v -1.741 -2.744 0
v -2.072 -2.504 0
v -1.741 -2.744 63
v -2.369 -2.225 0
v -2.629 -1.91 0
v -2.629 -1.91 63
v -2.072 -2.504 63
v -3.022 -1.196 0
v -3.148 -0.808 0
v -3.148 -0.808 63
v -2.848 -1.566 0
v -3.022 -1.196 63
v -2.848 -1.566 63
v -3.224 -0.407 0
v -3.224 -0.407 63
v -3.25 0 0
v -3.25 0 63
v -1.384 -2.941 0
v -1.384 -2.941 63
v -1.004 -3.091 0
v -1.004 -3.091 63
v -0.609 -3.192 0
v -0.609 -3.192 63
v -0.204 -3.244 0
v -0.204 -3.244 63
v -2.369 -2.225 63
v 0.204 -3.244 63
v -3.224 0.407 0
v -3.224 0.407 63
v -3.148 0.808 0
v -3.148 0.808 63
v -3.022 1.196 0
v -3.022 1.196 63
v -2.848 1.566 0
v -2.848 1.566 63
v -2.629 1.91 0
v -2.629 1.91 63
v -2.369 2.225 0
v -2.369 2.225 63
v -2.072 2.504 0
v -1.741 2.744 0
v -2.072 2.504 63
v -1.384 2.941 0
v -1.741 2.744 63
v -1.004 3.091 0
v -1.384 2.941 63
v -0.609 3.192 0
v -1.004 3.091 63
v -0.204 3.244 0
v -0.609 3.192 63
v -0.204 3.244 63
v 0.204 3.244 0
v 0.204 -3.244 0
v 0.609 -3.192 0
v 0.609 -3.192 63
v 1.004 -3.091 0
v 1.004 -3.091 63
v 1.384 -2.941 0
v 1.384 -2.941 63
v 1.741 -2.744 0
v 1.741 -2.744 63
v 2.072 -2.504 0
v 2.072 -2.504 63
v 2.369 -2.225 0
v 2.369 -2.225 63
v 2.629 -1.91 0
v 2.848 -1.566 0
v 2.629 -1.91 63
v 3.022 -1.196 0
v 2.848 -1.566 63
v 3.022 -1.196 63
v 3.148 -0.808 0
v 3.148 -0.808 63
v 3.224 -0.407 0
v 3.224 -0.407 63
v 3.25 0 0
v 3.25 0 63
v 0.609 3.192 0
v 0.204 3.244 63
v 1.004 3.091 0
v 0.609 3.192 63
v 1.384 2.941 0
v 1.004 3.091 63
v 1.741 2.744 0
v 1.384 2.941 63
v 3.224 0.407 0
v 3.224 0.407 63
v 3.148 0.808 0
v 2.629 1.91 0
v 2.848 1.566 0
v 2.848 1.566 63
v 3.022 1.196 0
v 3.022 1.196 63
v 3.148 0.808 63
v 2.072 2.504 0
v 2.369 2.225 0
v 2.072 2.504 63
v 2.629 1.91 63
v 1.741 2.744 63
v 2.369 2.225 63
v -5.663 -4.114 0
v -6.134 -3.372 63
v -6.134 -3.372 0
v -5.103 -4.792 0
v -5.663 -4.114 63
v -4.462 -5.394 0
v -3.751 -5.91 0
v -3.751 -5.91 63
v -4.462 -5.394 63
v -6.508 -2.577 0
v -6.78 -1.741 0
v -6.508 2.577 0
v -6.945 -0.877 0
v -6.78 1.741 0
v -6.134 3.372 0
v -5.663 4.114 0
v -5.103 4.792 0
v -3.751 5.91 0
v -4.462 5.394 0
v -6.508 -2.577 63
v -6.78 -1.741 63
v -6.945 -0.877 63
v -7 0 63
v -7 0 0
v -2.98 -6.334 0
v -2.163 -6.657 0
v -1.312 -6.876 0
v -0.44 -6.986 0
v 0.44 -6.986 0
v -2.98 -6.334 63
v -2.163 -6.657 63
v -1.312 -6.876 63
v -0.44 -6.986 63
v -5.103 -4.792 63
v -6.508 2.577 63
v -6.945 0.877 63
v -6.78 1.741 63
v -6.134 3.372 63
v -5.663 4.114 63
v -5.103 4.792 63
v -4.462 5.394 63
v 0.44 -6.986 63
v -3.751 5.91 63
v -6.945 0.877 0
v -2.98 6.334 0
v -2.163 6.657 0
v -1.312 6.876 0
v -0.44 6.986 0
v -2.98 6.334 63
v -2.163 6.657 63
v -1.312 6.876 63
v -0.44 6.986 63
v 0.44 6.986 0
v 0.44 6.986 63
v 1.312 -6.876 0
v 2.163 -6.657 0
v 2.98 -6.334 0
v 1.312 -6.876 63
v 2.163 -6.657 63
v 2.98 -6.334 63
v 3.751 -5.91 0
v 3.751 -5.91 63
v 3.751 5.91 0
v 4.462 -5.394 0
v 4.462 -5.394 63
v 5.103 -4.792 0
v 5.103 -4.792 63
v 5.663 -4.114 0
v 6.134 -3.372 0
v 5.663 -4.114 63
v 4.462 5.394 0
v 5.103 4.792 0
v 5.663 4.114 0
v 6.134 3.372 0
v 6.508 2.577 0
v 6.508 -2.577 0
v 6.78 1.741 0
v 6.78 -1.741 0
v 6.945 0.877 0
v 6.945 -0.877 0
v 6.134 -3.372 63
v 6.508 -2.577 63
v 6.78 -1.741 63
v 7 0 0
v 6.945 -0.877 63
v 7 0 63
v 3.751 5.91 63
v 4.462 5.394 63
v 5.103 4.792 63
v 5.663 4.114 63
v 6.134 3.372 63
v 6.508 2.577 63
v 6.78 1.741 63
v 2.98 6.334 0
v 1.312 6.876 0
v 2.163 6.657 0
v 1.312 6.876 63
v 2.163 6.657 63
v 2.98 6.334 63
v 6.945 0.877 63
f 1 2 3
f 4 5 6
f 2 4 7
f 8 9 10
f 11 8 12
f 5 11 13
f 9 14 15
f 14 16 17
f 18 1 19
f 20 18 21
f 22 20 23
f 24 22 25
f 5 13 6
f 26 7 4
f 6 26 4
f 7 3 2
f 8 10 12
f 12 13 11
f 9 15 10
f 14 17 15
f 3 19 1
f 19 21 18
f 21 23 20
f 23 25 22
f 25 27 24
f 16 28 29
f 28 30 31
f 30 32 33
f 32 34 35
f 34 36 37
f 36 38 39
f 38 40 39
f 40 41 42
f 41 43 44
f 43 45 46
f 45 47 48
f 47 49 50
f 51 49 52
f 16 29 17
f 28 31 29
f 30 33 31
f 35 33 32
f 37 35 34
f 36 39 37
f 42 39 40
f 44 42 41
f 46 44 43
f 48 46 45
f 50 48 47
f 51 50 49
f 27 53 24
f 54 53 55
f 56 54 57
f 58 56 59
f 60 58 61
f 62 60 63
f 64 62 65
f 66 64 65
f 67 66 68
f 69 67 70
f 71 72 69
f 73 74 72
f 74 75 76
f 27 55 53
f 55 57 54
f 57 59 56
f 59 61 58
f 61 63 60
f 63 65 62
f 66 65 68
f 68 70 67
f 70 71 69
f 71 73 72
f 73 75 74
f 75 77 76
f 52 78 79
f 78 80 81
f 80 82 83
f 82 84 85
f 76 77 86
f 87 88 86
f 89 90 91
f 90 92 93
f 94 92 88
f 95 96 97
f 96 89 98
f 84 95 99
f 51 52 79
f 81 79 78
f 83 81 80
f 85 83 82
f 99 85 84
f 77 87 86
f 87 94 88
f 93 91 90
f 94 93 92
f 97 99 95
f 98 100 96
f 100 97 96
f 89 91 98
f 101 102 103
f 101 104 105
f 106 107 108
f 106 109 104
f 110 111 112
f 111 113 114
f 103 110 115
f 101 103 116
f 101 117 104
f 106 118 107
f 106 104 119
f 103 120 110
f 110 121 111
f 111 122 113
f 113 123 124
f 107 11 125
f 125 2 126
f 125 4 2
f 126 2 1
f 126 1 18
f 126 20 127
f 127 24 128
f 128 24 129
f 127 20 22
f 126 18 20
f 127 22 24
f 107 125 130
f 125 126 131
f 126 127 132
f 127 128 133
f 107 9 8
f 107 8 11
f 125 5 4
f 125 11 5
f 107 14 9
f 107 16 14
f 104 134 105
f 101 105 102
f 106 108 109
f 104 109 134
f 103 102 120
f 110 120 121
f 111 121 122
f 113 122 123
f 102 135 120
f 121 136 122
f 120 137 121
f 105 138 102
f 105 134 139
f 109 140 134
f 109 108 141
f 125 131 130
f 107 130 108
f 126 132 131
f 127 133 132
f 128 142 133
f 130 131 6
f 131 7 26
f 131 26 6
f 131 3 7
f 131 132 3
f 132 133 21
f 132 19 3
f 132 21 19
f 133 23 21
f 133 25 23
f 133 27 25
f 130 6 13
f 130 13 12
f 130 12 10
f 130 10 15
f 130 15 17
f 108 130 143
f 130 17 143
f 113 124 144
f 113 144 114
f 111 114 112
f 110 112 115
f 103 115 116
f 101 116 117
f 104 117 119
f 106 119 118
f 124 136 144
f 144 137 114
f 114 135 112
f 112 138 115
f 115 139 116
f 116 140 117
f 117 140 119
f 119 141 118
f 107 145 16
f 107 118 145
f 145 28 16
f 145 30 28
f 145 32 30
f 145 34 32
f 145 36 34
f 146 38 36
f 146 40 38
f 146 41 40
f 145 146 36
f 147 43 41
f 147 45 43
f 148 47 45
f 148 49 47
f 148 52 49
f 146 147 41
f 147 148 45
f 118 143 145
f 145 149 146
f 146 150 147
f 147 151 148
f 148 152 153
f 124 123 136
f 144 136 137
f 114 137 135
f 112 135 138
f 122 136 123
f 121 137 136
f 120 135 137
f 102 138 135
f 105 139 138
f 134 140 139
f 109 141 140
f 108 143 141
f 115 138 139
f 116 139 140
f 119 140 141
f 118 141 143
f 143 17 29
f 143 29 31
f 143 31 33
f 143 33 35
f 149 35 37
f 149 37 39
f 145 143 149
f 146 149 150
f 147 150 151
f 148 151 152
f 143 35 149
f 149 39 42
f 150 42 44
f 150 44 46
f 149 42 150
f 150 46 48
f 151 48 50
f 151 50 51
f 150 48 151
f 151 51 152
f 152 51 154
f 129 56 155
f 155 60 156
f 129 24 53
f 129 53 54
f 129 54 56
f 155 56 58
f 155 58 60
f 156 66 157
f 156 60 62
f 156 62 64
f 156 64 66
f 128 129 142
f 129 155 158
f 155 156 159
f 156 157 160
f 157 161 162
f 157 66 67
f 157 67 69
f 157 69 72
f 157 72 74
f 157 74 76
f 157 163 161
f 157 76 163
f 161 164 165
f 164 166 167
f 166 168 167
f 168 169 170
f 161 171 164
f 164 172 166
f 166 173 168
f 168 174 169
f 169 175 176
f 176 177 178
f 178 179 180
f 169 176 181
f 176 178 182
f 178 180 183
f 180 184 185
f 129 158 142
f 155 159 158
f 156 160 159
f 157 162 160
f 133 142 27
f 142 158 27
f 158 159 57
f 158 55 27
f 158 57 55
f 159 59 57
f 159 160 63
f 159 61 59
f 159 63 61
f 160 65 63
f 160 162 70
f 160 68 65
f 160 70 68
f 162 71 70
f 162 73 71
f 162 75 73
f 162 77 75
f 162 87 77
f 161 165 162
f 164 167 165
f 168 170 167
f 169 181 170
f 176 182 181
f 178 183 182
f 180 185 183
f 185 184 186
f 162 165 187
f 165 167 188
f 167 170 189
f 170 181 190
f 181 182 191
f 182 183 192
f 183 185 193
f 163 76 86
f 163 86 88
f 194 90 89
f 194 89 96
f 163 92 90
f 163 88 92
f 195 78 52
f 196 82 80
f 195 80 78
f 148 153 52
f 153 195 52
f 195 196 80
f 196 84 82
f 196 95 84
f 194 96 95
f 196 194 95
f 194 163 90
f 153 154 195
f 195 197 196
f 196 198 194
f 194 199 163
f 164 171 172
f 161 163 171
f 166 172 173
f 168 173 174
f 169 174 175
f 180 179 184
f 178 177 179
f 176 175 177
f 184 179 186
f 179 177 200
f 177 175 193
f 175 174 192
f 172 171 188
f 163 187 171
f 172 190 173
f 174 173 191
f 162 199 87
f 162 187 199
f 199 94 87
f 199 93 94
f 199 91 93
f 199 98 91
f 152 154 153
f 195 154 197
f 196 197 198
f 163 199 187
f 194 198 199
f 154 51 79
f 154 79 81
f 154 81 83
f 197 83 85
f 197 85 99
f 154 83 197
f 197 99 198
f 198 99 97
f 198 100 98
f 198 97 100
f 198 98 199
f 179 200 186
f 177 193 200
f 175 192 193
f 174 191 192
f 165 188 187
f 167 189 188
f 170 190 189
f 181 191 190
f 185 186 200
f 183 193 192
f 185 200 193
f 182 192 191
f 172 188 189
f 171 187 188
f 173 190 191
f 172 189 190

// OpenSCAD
$fn = 50;

difference() {
	union() {
		cylinder(h = 63, r = 7.0);
	}
	union() {
		translate(v = [0, 0, -100]) {
			cylinder(h = 200, r = 3.25);
		}
		translate(v = [0, 0, -100]) {
			cylinder(h = 200, r = 1.8);
		}
	}
}
